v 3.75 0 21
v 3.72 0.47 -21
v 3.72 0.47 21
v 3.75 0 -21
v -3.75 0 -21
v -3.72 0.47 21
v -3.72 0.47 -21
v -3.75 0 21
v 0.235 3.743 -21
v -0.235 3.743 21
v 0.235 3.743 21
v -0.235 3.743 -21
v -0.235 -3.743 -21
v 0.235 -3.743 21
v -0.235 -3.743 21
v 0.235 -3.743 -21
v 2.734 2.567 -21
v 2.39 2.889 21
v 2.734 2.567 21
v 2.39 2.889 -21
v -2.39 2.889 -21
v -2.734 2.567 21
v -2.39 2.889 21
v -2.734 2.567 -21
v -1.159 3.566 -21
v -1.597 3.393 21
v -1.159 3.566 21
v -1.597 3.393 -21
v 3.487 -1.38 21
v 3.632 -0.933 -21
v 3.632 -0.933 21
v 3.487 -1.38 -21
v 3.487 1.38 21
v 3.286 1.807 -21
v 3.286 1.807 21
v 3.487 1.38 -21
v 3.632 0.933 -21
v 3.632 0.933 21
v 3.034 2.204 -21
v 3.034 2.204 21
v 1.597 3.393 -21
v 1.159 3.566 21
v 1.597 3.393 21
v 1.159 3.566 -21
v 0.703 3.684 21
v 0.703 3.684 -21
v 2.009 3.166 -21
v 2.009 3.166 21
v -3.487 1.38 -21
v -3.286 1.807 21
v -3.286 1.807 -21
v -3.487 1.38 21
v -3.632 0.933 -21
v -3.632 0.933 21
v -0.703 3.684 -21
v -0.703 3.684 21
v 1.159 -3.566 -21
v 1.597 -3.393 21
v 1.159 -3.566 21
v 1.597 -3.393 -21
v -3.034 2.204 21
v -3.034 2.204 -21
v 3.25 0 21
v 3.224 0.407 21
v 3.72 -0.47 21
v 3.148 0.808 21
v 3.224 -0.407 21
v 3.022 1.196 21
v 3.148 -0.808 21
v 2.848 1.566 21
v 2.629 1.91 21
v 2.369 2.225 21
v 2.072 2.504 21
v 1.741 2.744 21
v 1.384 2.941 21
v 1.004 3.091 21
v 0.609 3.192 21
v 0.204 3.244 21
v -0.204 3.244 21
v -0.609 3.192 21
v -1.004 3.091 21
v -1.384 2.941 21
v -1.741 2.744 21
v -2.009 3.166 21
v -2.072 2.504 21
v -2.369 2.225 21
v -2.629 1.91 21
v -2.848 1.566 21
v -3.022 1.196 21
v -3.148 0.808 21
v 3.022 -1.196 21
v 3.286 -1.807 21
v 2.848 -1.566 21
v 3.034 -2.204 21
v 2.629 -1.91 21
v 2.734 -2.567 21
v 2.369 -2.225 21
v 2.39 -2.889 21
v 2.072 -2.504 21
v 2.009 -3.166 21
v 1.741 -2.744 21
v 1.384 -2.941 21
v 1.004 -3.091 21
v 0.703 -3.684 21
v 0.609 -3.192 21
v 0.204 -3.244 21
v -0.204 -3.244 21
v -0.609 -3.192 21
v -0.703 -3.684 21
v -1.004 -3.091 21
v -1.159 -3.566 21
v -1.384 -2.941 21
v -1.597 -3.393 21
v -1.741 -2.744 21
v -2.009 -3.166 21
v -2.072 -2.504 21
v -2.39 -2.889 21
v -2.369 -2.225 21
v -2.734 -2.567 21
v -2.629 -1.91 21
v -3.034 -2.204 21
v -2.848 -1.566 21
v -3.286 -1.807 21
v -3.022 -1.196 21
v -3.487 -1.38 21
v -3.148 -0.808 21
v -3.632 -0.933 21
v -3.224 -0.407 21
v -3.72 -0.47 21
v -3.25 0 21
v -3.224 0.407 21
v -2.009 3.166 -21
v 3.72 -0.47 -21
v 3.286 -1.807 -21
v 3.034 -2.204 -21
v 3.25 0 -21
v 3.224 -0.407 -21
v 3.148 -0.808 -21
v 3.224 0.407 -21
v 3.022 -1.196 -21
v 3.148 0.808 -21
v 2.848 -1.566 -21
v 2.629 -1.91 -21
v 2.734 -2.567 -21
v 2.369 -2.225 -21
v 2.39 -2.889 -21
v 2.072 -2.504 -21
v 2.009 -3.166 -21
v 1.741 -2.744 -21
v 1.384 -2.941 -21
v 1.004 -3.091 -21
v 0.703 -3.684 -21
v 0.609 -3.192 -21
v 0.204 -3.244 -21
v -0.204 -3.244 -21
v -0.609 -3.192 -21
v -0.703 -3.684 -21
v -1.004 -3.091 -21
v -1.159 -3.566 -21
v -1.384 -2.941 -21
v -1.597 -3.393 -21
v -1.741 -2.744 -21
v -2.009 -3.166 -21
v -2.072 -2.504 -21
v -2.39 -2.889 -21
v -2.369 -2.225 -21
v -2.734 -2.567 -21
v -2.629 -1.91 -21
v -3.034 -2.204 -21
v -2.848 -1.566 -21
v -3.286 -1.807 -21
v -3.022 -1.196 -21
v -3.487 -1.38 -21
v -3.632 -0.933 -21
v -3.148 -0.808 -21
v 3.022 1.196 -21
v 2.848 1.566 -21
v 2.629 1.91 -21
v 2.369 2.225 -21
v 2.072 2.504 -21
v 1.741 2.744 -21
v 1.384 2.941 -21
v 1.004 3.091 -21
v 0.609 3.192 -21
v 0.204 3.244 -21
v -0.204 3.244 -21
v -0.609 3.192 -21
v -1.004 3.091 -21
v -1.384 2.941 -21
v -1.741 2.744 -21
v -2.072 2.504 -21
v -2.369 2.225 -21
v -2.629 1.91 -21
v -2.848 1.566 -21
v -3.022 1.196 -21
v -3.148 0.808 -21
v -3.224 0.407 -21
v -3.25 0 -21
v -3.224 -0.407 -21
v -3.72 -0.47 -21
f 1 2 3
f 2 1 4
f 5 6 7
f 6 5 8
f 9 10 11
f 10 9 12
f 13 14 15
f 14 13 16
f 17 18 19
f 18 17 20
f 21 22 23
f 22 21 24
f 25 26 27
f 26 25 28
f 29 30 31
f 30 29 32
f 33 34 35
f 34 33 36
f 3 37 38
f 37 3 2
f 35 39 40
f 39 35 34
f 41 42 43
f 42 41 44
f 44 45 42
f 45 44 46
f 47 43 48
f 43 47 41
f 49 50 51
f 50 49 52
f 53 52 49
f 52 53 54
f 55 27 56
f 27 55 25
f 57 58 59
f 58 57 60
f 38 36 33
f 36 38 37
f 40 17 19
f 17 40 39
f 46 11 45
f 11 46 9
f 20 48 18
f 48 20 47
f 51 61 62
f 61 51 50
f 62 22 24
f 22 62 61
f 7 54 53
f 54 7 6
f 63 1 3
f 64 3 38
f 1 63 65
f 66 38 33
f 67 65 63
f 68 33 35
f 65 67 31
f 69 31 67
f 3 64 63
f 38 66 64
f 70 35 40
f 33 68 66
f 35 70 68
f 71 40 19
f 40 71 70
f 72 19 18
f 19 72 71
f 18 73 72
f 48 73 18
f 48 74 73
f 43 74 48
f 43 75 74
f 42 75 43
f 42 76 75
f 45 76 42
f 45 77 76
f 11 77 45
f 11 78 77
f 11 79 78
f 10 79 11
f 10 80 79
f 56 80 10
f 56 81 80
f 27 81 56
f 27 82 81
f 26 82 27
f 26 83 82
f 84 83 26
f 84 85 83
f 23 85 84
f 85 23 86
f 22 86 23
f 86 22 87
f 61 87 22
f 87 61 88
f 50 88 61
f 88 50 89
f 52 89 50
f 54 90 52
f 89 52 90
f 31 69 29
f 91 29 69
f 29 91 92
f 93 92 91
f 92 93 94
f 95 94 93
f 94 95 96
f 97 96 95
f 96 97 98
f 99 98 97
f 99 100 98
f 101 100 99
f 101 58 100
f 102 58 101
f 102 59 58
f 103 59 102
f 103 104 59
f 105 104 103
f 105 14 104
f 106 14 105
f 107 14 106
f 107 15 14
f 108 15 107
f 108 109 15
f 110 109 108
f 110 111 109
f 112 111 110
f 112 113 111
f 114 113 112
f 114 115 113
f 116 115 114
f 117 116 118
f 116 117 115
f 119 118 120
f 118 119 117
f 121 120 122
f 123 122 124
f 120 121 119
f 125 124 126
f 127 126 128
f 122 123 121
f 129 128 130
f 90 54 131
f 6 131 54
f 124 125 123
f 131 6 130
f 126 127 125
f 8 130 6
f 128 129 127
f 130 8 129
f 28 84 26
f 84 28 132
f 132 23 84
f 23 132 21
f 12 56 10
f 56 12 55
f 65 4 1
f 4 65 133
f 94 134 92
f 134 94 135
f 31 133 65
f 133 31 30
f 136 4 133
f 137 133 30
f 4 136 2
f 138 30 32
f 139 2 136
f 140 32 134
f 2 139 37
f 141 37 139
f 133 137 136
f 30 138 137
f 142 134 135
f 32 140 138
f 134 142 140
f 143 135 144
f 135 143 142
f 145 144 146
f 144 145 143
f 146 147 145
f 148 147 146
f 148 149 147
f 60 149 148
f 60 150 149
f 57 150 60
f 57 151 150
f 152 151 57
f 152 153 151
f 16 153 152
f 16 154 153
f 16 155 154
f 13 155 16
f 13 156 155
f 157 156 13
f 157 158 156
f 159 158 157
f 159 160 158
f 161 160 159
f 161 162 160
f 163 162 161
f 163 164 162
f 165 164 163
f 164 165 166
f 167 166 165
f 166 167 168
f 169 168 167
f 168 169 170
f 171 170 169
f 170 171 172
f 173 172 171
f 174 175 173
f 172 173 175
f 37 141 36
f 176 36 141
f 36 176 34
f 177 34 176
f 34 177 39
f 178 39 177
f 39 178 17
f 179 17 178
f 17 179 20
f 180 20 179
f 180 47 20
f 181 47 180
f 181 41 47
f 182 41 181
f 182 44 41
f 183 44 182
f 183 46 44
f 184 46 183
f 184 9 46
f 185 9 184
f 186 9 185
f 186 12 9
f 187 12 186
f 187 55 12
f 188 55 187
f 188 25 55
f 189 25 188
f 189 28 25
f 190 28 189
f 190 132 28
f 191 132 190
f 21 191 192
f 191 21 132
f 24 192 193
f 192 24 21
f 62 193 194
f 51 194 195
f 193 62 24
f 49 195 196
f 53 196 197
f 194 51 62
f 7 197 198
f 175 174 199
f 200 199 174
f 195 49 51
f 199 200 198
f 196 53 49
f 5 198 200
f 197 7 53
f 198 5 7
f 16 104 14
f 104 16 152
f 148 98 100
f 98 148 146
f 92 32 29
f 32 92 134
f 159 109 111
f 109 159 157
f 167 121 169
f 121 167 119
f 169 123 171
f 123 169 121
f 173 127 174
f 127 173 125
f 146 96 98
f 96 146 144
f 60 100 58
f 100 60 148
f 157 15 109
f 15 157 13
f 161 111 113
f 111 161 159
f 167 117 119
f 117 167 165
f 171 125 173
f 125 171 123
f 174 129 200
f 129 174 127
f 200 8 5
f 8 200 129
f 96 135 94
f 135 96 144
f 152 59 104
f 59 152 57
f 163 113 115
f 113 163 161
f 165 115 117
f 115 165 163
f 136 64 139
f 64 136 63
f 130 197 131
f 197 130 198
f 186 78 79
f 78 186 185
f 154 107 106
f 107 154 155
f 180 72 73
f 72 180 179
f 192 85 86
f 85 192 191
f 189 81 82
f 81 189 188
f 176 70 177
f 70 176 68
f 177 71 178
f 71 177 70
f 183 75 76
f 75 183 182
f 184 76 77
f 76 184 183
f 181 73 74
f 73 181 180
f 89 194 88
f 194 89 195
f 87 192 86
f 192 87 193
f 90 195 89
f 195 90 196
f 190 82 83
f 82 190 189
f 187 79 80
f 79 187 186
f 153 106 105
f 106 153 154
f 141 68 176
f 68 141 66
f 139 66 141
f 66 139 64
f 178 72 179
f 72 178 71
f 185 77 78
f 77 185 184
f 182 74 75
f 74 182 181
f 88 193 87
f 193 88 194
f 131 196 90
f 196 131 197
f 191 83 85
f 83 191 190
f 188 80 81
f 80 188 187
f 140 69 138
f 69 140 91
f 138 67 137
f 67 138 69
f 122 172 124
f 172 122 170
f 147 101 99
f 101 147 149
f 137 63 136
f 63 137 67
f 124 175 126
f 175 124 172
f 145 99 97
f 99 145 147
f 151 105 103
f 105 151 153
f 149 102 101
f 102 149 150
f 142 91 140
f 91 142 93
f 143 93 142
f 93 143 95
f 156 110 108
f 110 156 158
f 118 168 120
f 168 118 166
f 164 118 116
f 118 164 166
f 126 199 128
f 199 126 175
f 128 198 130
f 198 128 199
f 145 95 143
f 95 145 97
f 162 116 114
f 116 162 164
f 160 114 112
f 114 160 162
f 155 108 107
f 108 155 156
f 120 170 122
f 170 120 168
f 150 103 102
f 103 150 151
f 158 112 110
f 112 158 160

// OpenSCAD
$fn = 50;


difference() {
	union() {
		translate(v = [0, 0, -21.0000000000]) {
			cylinder(h = 42, r = 3.7500000000);
		}
	}
	union() {
		translate(v = [0, 0, -100.0000000000]) {
			cylinder(h = 200, r = 3.2500000000);
		}
	}
}
